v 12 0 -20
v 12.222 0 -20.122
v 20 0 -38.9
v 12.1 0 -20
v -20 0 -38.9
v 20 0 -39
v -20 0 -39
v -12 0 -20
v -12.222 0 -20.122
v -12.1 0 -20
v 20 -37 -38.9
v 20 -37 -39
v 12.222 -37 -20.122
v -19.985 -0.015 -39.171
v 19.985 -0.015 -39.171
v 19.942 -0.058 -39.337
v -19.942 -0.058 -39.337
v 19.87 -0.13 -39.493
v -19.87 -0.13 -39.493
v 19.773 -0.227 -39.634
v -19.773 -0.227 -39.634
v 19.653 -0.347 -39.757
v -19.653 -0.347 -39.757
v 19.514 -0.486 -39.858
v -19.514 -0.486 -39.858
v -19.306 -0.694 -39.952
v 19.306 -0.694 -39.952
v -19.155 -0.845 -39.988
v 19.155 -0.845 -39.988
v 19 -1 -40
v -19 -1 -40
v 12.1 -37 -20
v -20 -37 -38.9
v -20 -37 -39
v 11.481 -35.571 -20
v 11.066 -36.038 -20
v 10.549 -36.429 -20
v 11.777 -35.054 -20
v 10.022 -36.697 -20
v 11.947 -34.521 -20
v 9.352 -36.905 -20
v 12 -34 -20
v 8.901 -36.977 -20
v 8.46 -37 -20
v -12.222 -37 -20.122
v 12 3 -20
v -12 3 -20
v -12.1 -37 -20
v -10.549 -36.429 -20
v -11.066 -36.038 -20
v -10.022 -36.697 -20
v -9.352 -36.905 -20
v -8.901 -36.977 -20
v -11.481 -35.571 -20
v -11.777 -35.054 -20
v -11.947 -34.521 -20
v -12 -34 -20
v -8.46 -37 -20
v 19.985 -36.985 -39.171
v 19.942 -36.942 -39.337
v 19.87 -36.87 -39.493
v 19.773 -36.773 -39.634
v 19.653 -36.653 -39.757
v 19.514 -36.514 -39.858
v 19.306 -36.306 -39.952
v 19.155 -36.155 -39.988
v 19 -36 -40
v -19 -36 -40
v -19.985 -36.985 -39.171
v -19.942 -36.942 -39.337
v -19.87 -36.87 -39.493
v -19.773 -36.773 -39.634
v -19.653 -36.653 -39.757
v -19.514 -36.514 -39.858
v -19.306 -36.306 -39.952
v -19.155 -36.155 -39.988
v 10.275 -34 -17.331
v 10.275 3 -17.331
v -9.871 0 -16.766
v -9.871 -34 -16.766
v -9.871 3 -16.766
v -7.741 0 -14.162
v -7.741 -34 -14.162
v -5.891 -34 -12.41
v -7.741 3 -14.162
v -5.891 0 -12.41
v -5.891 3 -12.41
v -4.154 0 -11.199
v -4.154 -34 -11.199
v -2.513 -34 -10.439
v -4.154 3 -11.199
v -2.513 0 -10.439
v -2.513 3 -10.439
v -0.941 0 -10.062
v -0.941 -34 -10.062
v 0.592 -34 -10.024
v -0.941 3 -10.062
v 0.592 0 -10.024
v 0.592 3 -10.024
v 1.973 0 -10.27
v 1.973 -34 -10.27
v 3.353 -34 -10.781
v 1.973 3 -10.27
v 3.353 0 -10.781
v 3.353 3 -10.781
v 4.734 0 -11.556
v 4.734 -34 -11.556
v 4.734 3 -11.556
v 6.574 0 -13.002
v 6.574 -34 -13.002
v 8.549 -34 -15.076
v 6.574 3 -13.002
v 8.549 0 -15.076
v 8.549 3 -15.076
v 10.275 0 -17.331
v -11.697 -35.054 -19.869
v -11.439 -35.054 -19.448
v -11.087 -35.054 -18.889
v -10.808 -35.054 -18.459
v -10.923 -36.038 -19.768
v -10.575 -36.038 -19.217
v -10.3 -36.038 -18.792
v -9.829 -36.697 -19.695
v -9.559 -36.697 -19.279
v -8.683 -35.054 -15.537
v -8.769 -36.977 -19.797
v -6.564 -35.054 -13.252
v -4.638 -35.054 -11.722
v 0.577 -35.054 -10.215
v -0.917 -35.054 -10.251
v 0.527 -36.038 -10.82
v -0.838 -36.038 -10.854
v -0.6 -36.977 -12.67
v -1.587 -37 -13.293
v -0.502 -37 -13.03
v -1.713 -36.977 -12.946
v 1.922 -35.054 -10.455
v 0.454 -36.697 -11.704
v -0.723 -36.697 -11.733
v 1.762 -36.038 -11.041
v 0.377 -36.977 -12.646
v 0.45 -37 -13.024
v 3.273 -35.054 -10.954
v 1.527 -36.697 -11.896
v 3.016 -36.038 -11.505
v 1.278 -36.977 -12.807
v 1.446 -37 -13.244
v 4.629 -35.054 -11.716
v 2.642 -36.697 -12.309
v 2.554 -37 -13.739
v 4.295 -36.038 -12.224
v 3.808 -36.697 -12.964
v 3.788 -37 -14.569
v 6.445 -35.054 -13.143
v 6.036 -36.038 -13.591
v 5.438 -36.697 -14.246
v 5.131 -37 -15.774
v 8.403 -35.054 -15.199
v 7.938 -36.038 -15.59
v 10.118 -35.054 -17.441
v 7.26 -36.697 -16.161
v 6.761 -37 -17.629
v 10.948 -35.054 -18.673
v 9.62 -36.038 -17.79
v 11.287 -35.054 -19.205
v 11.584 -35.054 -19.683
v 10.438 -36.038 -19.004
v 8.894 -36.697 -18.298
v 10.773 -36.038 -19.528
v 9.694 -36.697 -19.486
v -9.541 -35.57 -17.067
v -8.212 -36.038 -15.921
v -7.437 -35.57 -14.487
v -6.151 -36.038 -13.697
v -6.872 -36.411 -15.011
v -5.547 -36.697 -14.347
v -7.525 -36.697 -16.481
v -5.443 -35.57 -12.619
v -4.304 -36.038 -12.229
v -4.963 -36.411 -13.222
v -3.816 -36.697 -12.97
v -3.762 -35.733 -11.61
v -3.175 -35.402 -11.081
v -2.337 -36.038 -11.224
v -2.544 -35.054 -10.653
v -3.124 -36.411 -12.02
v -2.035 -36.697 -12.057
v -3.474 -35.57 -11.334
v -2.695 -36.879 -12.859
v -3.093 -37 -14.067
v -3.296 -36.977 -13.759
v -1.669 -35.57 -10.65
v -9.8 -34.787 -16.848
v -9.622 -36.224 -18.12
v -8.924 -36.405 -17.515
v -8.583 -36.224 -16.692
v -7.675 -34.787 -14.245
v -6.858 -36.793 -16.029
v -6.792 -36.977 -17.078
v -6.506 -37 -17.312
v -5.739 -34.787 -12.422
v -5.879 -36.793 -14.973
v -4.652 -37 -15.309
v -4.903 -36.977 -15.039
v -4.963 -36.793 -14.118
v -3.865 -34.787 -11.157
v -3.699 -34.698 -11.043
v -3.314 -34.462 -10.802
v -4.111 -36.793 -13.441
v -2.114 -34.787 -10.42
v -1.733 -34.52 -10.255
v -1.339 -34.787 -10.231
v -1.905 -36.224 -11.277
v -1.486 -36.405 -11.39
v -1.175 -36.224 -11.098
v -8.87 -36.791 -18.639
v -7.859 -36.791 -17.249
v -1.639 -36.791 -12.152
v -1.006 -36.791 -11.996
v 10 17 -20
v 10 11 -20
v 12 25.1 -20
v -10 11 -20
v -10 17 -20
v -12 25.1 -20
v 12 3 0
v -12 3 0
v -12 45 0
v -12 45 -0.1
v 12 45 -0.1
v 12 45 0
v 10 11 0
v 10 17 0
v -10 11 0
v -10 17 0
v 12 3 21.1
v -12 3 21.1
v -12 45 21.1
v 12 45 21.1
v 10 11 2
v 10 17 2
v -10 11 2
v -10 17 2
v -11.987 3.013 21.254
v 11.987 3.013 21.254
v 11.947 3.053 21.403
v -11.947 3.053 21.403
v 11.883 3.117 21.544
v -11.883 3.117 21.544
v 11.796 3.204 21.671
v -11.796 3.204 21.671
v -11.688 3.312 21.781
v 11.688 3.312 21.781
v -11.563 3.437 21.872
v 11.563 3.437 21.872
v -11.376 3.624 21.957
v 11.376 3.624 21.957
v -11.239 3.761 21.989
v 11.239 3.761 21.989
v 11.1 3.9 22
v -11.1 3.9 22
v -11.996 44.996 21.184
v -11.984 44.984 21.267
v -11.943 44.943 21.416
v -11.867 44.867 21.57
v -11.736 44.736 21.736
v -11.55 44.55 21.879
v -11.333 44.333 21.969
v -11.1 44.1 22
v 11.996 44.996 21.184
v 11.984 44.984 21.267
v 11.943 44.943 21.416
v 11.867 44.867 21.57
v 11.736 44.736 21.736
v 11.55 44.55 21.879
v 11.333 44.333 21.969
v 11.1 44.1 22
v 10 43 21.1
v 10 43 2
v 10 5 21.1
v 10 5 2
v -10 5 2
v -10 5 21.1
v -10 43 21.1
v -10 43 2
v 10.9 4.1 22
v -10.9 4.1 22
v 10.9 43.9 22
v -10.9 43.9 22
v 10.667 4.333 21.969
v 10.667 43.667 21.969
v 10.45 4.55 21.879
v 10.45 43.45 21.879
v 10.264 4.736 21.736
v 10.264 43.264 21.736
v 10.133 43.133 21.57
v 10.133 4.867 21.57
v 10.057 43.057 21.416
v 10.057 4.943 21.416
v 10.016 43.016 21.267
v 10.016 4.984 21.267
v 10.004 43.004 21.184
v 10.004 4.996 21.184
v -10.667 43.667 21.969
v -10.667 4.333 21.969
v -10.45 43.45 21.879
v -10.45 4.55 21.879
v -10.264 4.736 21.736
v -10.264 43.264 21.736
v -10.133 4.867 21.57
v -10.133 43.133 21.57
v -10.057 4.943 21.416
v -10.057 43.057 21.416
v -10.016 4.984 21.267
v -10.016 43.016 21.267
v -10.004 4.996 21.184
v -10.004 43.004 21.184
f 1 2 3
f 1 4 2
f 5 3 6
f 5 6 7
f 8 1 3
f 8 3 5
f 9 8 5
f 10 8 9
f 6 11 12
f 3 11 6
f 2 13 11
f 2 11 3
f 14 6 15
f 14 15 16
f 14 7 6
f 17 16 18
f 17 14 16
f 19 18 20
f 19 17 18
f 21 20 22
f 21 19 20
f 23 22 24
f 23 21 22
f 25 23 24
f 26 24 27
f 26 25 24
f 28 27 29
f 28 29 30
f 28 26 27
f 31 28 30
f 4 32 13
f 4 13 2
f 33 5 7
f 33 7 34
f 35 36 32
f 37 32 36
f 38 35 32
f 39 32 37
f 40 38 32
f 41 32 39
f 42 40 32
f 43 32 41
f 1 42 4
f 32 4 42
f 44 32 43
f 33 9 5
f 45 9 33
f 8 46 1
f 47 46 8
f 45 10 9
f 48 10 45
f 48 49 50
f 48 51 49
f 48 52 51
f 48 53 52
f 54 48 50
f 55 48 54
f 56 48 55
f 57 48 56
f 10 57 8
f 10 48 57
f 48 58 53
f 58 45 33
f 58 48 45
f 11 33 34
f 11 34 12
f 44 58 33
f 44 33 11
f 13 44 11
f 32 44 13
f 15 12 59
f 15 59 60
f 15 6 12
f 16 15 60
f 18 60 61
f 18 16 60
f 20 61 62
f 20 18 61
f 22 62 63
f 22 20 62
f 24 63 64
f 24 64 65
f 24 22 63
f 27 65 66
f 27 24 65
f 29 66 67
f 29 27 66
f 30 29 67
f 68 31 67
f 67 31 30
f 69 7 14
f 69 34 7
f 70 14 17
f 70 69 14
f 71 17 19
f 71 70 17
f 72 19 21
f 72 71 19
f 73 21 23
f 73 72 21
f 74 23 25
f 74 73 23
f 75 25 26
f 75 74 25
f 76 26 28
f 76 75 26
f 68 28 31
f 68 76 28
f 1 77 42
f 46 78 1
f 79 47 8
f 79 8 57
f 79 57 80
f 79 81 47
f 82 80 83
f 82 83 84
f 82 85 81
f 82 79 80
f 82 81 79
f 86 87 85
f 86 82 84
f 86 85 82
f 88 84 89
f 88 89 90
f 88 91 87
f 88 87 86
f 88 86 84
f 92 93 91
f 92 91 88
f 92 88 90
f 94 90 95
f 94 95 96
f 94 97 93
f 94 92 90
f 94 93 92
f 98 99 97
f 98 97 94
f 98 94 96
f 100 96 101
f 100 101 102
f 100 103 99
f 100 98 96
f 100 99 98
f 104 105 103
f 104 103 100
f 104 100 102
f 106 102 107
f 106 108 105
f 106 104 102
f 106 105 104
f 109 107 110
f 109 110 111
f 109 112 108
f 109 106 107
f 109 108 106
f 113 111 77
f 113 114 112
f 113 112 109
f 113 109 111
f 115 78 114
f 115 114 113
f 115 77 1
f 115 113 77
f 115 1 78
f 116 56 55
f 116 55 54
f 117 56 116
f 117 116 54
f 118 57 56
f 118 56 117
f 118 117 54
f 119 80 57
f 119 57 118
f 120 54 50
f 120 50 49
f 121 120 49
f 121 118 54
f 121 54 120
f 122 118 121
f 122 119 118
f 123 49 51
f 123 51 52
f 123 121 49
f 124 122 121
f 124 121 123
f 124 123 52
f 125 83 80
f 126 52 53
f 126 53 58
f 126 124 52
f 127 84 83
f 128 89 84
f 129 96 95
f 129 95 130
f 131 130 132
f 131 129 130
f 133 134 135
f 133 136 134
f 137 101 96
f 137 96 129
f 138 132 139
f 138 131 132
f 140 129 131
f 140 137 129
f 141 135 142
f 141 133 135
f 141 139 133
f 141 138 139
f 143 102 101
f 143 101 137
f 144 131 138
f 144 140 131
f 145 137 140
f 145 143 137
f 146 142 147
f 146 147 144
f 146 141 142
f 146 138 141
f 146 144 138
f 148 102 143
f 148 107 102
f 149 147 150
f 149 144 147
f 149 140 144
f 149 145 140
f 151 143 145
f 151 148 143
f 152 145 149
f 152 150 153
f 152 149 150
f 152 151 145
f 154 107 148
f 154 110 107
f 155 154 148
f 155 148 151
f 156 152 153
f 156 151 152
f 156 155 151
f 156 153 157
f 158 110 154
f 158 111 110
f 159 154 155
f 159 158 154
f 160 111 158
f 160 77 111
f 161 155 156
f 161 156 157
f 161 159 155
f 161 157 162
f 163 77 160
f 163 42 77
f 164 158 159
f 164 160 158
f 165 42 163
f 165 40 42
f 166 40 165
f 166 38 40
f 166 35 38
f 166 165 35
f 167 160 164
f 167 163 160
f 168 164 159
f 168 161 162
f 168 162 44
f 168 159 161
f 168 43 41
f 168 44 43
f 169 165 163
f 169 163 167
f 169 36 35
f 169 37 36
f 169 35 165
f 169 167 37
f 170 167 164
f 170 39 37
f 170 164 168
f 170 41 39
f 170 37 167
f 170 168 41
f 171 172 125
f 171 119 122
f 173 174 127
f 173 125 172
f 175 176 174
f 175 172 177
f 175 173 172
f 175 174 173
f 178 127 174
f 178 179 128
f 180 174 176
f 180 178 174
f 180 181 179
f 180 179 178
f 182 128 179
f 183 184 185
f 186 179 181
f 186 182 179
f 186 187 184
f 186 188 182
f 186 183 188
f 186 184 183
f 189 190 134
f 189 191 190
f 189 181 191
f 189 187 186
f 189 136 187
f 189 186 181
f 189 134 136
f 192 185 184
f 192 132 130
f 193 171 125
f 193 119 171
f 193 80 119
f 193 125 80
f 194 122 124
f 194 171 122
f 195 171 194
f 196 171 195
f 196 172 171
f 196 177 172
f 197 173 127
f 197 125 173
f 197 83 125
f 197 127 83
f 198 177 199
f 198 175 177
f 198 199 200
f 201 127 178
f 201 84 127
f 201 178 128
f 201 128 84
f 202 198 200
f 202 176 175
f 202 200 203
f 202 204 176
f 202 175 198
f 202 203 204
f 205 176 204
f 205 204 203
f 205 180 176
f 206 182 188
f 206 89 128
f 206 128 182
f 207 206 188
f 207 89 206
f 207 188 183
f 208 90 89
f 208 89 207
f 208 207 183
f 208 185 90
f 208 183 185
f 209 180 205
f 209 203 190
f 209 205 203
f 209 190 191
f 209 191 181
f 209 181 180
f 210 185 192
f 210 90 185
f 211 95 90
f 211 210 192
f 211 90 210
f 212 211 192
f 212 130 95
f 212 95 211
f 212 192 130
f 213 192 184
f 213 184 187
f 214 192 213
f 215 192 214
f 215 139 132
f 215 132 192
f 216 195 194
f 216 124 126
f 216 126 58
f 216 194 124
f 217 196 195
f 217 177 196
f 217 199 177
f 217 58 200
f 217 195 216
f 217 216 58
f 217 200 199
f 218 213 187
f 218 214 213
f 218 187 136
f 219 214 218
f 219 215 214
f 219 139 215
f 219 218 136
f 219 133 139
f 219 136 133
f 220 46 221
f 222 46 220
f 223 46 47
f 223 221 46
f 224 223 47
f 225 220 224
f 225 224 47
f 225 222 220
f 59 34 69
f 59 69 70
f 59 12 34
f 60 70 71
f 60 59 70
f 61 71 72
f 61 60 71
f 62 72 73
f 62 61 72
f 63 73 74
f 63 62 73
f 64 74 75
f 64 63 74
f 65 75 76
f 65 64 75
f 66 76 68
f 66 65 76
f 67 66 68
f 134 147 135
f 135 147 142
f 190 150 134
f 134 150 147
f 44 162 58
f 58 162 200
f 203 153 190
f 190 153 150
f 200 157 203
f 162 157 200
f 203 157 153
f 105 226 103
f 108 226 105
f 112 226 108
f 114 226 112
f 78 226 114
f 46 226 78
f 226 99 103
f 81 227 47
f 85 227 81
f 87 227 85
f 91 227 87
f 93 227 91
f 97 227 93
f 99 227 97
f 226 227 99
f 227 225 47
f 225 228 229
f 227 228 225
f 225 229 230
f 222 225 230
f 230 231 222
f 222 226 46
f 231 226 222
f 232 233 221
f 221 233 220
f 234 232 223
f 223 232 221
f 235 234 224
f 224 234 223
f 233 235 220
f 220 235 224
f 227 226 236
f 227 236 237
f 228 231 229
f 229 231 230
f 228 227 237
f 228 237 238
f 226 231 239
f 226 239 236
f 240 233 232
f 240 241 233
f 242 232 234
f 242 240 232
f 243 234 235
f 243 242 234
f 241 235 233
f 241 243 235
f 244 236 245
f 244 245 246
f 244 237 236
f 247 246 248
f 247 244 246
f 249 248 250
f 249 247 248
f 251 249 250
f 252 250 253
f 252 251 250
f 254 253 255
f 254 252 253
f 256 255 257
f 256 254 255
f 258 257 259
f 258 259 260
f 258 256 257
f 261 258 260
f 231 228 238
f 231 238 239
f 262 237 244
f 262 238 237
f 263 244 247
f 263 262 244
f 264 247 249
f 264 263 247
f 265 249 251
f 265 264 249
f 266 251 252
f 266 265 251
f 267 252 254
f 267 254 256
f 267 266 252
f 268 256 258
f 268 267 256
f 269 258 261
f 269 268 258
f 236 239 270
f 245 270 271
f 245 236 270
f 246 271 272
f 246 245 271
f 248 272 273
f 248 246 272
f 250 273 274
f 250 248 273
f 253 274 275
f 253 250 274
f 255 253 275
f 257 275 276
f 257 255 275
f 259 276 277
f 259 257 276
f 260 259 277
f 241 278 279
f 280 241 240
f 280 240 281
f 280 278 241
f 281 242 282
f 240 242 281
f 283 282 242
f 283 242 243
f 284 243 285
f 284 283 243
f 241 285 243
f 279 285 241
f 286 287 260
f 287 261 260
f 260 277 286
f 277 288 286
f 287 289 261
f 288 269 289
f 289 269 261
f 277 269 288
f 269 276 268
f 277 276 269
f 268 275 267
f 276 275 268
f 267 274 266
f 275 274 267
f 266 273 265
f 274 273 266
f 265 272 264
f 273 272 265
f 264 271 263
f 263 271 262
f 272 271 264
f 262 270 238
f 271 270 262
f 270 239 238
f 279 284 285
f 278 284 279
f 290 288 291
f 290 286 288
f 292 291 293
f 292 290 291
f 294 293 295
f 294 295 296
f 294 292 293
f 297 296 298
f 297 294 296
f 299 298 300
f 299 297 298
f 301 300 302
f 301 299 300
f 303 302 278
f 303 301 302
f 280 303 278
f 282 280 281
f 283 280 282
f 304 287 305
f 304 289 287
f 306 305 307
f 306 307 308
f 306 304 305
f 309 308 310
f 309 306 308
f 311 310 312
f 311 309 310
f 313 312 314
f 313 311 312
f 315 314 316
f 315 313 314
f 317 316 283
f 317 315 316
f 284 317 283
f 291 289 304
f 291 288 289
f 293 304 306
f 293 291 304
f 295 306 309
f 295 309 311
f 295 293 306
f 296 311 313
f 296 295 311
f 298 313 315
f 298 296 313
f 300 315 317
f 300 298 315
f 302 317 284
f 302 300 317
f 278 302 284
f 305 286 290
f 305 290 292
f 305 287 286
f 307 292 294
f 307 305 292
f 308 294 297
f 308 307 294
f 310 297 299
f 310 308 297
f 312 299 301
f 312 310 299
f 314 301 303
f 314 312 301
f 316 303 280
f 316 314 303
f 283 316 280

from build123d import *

# Parameters (mm, degrees)
SKETCH_W            = 24
SKETCH_H            = 42
PAD_DEPTH           = 22
SKETCH001_W         = 20
SKETCH001_H         = 38
POCKET_DEPTH        = 20
SKETCH002_W         = 20
SKETCH002_H         = 6
POCKET001_DEPTH     = 5
POCKET001_FACE4_W   = 42
POCKET001_FACE4_H   = 24
POCKET001_FACE4_W_2 = 6
POCKET001_FACE4_H_2 = 20
PAD001_DEPTH        = 20
CHAMFER_SIZE        = 19.9
PAD002_DEPTH        = 40
FILLET_R            = 3
FILLET001_R         = 0.9
SKETCH004_W         = 40
SKETCH004_H         = 37
PAD003_DEPTH        = 20
FILLET002_R         = 1
CHAMFER001_SIZE     = 7.9
CHAMFER002_SIZE     = 11


with BuildPart() as part:
    # Sketch → Pad (new body)
    with BuildSketch(Plane.XY):
        with Locations((0, 24)):
            Rectangle(SKETCH_W, SKETCH_H)
    extrude(amount=PAD_DEPTH)

    # Sketch001 (on Face6 of Pad) → Pocket (cut)
    with BuildSketch(Plane.XY.offset(22)):
        with Locations((0, 24)):
            Rectangle(SKETCH001_W, SKETCH001_H)
    extrude(amount=-POCKET_DEPTH, mode=Mode.SUBTRACT)

    # Sketch002 (on Face11 of Pocket) → Pocket001 (cut)
    with BuildSketch(Plane.XY.offset(2)):
        with Locations((0, 14)):
            Rectangle(SKETCH002_W, SKETCH002_H)
    extrude(amount=-POCKET001_DEPTH, mode=Mode.SUBTRACT)

    # Pocket001 Face4 → Pad001 (add)
    with BuildSketch(Plane(origin=(0, 25.351351, 0), x_dir=(0, -1, 0), z_dir=(0, 0, -1))):
        with Locations((1.351351, 0)):
            Rectangle(POCKET001_FACE4_W, POCKET001_FACE4_H)
        with Locations((11.351351, 0)):
            Rectangle(POCKET001_FACE4_W_2, POCKET001_FACE4_H_2, mode=Mode.SUBTRACT)
    extrude(amount=PAD001_DEPTH)

    # Chamfer
    chamfer_edges = [part.edges().sort_by_distance(p)[0] for p in [
        (0, 45, -20),
    ]]
    chamfer(chamfer_edges, length=CHAMFER_SIZE)

    # Sketch003 (on Face8 of Chamfer) → Pad002 (join)
    with BuildSketch(Plane.XZ.offset(-3)):
        with BuildLine():
            Line((12, -20), (-12, -20))
            add(Edge.make_bspline(
                [(-12, -20), (0, 0), (12, -20)],
                knots=[0, 0, 0, 1, 1, 1], degree=2))
        make_face()
    extrude(amount=PAD002_DEPTH)

    # Fillet
    fillet_edges = [part.edges().sort_by_distance(p)[0] for p in [
        (-0.002974, -37, -10.000001),
    ]]
    fillet(fillet_edges, radius=FILLET_R)

    # Fillet001
    fillet001_edges = [part.edges().sort_by_distance(p)[0] for p in [
        (0, 45, 22),
        (-12, 24, 22),
        (12, 24, 22),
        (0, 3, 22),
        (0, 43, 22),
        (10, 24, 22),
        (0, 5, 22),
        (-10, 24, 22),
    ]]
    fillet(fillet001_edges, radius=FILLET001_R)

    # Sketch004 (on Face21 of Fillet001) → Pad003 (join)
    with BuildSketch(Plane(origin=(0, 0, -20), x_dir=(1, 0, 0), z_dir=(0, 0, -1))):
        with Locations((0, 18.5)):
            Rectangle(SKETCH004_W, SKETCH004_H)
    extrude(amount=PAD003_DEPTH)

    # Fillet002
    fillet002_edges = [part.edges().sort_by_distance(p)[0] for p in [
        (0, -37, -40),
        (20, -18.5, -40),
        (0, 0, -40),
        (-20, -18.5, -40),
    ]]
    fillet(fillet002_edges, radius=FILLET002_R)

    # Chamfer001
    chamfer001_edges = [part.edges().sort_by_distance(p)[0] for p in [
        (-20, -18.5, -20),
        (20, -18.5, -20),
    ]]
    chamfer(chamfer001_edges, length=CHAMFER001_SIZE)

    # Chamfer002
    chamfer002_edges = [part.edges().sort_by_distance(p)[0] for p in [
        (20, -18.5, -27.9),
        (-20, -18.5, -27.9),
    ]]
    chamfer(chamfer002_edges, length=CHAMFER002_SIZE)


solid = part.part
